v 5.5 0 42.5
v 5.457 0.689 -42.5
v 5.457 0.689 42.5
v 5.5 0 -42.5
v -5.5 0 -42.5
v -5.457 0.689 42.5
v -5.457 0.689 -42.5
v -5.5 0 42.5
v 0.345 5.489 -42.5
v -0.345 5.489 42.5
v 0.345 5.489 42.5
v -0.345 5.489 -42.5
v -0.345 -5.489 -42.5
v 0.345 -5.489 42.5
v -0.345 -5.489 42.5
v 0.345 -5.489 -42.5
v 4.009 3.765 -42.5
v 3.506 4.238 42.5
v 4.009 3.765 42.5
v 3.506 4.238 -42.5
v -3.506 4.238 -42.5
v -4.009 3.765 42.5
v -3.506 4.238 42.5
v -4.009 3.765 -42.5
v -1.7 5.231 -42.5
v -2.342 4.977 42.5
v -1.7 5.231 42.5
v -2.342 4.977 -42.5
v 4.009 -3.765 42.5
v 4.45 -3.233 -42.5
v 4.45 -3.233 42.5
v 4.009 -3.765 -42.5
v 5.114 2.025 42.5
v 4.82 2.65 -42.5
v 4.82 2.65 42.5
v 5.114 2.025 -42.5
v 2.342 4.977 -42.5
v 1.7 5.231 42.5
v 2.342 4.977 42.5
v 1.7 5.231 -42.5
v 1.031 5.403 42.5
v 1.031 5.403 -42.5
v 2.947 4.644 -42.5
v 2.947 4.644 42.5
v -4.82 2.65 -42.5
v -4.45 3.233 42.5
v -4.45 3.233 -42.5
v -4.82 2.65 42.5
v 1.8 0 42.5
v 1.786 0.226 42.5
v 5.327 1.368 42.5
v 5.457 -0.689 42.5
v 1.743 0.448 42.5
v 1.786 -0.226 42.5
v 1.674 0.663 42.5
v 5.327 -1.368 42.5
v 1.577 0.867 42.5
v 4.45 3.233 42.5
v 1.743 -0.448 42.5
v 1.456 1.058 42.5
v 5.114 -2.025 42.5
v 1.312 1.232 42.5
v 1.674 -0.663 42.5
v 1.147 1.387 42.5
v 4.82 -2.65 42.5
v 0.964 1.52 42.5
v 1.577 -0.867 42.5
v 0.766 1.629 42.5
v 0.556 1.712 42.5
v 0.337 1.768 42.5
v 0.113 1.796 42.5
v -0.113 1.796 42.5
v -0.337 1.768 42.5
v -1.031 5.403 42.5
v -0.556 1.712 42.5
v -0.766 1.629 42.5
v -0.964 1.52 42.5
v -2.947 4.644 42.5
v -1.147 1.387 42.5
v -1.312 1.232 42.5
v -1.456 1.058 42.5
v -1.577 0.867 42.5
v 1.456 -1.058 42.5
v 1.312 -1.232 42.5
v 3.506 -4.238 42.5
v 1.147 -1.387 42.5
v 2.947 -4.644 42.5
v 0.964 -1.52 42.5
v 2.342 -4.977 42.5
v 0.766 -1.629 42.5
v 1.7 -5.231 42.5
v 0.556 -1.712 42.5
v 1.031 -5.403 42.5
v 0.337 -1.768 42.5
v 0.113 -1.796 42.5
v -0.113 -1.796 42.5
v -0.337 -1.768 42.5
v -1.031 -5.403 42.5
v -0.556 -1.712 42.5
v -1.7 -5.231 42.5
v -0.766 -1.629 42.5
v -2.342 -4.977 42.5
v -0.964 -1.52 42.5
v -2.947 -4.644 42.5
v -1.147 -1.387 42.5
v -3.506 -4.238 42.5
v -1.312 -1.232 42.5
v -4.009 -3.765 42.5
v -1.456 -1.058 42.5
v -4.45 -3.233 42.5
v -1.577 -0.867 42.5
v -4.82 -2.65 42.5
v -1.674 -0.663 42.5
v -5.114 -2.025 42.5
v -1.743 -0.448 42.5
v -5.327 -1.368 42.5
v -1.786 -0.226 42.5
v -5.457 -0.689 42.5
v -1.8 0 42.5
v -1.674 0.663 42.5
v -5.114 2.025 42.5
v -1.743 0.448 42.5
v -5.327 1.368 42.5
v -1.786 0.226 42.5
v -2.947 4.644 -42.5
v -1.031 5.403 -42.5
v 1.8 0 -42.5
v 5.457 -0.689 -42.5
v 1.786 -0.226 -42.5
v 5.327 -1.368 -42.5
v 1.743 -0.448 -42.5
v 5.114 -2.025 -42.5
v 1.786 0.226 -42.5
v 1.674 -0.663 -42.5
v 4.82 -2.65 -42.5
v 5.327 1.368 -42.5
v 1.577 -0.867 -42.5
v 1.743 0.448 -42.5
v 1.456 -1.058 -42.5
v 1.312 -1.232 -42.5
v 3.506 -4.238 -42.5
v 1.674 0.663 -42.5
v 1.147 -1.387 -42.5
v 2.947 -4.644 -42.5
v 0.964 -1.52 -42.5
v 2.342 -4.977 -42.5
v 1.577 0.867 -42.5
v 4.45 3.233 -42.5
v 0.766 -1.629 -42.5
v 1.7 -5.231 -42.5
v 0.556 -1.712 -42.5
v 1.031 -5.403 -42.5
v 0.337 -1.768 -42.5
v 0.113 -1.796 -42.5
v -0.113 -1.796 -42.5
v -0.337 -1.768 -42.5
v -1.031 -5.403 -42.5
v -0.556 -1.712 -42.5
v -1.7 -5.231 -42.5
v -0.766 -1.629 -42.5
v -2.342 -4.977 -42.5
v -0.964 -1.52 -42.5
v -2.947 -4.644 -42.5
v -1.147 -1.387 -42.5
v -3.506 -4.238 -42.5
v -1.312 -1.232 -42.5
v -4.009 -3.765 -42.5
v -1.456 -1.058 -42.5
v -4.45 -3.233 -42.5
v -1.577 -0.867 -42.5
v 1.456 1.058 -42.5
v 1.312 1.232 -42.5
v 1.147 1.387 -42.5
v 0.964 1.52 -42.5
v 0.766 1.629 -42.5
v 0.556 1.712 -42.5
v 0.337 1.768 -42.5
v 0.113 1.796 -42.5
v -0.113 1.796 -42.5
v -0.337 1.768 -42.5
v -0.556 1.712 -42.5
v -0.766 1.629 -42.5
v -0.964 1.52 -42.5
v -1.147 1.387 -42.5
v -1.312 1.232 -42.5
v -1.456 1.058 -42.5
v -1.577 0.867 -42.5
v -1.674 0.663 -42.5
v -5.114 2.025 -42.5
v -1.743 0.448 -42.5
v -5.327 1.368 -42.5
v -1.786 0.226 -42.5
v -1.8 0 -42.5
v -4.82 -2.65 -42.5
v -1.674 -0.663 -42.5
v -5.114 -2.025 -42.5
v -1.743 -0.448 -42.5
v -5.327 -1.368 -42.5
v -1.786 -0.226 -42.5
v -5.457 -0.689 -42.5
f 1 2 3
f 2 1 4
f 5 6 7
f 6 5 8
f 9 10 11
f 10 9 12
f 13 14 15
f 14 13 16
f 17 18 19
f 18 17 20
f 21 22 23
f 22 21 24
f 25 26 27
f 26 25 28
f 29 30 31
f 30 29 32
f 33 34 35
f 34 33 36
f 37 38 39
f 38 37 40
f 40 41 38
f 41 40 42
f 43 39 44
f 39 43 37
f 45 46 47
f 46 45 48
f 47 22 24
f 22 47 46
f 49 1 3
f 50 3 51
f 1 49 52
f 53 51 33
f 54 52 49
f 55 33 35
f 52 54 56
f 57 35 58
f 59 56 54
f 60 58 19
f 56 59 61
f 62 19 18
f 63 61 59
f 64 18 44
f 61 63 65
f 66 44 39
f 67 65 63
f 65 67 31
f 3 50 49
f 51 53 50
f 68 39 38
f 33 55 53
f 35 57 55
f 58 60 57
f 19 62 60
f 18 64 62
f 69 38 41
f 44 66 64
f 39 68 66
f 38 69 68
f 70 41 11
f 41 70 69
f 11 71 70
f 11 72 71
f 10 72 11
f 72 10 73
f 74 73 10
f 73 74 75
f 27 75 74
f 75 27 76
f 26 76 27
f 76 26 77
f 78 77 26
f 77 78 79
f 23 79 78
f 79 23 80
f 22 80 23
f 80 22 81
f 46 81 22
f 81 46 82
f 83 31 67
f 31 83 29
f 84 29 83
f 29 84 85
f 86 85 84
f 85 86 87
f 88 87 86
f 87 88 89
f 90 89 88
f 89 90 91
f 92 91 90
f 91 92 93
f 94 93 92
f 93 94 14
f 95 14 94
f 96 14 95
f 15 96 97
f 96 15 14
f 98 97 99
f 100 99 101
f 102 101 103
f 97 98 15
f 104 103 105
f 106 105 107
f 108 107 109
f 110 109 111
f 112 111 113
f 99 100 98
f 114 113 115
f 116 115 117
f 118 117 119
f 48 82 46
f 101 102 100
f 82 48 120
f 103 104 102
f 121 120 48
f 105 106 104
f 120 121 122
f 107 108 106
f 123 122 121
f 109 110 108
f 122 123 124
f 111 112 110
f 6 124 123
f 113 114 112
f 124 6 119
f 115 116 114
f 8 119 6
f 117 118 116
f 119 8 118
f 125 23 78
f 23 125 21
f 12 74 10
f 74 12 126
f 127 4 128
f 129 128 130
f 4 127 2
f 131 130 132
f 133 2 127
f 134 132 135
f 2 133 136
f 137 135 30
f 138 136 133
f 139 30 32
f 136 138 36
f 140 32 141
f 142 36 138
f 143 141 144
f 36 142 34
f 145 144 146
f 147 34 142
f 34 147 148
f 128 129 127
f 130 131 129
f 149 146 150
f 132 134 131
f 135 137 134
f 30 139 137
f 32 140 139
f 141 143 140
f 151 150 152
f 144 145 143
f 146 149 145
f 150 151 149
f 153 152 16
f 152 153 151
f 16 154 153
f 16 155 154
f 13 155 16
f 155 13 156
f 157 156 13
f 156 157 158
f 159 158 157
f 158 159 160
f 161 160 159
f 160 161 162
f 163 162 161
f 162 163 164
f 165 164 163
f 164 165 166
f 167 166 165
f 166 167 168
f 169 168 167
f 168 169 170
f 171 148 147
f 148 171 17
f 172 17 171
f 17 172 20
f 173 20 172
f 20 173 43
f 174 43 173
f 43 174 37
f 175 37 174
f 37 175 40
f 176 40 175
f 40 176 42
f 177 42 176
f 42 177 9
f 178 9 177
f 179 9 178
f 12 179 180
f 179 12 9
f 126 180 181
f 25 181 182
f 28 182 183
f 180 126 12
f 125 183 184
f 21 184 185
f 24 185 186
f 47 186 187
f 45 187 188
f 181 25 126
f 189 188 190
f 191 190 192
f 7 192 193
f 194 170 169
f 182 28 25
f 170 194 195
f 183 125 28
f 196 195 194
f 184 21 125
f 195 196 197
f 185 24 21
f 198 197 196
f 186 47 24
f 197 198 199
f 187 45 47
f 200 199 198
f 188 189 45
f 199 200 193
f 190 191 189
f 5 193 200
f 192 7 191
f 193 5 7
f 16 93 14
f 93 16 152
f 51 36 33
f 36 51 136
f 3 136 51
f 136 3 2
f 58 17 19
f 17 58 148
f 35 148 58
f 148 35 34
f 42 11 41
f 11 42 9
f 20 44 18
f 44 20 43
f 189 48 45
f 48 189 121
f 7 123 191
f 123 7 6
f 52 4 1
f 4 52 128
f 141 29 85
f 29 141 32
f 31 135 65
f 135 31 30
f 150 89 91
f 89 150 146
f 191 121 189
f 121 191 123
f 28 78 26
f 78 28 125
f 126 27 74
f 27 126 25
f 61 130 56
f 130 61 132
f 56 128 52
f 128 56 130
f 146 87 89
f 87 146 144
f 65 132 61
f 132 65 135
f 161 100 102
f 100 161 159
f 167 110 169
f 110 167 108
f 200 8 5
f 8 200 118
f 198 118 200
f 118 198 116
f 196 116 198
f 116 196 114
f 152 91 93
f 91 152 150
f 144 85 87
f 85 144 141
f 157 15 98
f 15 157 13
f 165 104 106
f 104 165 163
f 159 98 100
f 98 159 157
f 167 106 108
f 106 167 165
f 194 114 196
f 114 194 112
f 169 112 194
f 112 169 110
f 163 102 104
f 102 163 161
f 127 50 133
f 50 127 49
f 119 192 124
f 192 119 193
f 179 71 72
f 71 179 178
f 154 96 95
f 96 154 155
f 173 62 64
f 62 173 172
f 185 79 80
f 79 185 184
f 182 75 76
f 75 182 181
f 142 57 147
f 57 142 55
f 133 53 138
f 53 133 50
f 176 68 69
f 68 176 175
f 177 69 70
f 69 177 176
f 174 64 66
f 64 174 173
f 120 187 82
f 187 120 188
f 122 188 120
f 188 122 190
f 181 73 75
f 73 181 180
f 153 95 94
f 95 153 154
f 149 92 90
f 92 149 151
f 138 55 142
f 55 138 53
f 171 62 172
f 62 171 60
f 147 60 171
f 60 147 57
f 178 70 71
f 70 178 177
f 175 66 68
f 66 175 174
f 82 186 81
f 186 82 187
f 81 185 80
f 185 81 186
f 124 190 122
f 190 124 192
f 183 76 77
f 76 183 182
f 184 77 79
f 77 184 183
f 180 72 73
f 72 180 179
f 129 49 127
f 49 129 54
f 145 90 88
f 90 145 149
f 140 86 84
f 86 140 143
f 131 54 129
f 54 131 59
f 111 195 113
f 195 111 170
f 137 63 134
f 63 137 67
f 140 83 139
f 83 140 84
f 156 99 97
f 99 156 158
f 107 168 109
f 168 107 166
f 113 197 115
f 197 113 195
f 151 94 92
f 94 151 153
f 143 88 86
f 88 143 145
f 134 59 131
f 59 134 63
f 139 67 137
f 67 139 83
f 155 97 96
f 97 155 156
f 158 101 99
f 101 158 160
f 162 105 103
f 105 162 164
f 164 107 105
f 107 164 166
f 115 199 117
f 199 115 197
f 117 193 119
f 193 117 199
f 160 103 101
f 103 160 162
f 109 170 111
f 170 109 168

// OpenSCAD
$fn = 50;


difference() {
	union() {
		translate(v = [0, 0, -42.5000000000]) {
			cylinder(h = 85, r = 5.5000000000);
		}
	}
	union() {
		translate(v = [0, 0, -100.0000000000]) {
			cylinder(h = 200, r = 1.8000000000);
		}
	}
}
